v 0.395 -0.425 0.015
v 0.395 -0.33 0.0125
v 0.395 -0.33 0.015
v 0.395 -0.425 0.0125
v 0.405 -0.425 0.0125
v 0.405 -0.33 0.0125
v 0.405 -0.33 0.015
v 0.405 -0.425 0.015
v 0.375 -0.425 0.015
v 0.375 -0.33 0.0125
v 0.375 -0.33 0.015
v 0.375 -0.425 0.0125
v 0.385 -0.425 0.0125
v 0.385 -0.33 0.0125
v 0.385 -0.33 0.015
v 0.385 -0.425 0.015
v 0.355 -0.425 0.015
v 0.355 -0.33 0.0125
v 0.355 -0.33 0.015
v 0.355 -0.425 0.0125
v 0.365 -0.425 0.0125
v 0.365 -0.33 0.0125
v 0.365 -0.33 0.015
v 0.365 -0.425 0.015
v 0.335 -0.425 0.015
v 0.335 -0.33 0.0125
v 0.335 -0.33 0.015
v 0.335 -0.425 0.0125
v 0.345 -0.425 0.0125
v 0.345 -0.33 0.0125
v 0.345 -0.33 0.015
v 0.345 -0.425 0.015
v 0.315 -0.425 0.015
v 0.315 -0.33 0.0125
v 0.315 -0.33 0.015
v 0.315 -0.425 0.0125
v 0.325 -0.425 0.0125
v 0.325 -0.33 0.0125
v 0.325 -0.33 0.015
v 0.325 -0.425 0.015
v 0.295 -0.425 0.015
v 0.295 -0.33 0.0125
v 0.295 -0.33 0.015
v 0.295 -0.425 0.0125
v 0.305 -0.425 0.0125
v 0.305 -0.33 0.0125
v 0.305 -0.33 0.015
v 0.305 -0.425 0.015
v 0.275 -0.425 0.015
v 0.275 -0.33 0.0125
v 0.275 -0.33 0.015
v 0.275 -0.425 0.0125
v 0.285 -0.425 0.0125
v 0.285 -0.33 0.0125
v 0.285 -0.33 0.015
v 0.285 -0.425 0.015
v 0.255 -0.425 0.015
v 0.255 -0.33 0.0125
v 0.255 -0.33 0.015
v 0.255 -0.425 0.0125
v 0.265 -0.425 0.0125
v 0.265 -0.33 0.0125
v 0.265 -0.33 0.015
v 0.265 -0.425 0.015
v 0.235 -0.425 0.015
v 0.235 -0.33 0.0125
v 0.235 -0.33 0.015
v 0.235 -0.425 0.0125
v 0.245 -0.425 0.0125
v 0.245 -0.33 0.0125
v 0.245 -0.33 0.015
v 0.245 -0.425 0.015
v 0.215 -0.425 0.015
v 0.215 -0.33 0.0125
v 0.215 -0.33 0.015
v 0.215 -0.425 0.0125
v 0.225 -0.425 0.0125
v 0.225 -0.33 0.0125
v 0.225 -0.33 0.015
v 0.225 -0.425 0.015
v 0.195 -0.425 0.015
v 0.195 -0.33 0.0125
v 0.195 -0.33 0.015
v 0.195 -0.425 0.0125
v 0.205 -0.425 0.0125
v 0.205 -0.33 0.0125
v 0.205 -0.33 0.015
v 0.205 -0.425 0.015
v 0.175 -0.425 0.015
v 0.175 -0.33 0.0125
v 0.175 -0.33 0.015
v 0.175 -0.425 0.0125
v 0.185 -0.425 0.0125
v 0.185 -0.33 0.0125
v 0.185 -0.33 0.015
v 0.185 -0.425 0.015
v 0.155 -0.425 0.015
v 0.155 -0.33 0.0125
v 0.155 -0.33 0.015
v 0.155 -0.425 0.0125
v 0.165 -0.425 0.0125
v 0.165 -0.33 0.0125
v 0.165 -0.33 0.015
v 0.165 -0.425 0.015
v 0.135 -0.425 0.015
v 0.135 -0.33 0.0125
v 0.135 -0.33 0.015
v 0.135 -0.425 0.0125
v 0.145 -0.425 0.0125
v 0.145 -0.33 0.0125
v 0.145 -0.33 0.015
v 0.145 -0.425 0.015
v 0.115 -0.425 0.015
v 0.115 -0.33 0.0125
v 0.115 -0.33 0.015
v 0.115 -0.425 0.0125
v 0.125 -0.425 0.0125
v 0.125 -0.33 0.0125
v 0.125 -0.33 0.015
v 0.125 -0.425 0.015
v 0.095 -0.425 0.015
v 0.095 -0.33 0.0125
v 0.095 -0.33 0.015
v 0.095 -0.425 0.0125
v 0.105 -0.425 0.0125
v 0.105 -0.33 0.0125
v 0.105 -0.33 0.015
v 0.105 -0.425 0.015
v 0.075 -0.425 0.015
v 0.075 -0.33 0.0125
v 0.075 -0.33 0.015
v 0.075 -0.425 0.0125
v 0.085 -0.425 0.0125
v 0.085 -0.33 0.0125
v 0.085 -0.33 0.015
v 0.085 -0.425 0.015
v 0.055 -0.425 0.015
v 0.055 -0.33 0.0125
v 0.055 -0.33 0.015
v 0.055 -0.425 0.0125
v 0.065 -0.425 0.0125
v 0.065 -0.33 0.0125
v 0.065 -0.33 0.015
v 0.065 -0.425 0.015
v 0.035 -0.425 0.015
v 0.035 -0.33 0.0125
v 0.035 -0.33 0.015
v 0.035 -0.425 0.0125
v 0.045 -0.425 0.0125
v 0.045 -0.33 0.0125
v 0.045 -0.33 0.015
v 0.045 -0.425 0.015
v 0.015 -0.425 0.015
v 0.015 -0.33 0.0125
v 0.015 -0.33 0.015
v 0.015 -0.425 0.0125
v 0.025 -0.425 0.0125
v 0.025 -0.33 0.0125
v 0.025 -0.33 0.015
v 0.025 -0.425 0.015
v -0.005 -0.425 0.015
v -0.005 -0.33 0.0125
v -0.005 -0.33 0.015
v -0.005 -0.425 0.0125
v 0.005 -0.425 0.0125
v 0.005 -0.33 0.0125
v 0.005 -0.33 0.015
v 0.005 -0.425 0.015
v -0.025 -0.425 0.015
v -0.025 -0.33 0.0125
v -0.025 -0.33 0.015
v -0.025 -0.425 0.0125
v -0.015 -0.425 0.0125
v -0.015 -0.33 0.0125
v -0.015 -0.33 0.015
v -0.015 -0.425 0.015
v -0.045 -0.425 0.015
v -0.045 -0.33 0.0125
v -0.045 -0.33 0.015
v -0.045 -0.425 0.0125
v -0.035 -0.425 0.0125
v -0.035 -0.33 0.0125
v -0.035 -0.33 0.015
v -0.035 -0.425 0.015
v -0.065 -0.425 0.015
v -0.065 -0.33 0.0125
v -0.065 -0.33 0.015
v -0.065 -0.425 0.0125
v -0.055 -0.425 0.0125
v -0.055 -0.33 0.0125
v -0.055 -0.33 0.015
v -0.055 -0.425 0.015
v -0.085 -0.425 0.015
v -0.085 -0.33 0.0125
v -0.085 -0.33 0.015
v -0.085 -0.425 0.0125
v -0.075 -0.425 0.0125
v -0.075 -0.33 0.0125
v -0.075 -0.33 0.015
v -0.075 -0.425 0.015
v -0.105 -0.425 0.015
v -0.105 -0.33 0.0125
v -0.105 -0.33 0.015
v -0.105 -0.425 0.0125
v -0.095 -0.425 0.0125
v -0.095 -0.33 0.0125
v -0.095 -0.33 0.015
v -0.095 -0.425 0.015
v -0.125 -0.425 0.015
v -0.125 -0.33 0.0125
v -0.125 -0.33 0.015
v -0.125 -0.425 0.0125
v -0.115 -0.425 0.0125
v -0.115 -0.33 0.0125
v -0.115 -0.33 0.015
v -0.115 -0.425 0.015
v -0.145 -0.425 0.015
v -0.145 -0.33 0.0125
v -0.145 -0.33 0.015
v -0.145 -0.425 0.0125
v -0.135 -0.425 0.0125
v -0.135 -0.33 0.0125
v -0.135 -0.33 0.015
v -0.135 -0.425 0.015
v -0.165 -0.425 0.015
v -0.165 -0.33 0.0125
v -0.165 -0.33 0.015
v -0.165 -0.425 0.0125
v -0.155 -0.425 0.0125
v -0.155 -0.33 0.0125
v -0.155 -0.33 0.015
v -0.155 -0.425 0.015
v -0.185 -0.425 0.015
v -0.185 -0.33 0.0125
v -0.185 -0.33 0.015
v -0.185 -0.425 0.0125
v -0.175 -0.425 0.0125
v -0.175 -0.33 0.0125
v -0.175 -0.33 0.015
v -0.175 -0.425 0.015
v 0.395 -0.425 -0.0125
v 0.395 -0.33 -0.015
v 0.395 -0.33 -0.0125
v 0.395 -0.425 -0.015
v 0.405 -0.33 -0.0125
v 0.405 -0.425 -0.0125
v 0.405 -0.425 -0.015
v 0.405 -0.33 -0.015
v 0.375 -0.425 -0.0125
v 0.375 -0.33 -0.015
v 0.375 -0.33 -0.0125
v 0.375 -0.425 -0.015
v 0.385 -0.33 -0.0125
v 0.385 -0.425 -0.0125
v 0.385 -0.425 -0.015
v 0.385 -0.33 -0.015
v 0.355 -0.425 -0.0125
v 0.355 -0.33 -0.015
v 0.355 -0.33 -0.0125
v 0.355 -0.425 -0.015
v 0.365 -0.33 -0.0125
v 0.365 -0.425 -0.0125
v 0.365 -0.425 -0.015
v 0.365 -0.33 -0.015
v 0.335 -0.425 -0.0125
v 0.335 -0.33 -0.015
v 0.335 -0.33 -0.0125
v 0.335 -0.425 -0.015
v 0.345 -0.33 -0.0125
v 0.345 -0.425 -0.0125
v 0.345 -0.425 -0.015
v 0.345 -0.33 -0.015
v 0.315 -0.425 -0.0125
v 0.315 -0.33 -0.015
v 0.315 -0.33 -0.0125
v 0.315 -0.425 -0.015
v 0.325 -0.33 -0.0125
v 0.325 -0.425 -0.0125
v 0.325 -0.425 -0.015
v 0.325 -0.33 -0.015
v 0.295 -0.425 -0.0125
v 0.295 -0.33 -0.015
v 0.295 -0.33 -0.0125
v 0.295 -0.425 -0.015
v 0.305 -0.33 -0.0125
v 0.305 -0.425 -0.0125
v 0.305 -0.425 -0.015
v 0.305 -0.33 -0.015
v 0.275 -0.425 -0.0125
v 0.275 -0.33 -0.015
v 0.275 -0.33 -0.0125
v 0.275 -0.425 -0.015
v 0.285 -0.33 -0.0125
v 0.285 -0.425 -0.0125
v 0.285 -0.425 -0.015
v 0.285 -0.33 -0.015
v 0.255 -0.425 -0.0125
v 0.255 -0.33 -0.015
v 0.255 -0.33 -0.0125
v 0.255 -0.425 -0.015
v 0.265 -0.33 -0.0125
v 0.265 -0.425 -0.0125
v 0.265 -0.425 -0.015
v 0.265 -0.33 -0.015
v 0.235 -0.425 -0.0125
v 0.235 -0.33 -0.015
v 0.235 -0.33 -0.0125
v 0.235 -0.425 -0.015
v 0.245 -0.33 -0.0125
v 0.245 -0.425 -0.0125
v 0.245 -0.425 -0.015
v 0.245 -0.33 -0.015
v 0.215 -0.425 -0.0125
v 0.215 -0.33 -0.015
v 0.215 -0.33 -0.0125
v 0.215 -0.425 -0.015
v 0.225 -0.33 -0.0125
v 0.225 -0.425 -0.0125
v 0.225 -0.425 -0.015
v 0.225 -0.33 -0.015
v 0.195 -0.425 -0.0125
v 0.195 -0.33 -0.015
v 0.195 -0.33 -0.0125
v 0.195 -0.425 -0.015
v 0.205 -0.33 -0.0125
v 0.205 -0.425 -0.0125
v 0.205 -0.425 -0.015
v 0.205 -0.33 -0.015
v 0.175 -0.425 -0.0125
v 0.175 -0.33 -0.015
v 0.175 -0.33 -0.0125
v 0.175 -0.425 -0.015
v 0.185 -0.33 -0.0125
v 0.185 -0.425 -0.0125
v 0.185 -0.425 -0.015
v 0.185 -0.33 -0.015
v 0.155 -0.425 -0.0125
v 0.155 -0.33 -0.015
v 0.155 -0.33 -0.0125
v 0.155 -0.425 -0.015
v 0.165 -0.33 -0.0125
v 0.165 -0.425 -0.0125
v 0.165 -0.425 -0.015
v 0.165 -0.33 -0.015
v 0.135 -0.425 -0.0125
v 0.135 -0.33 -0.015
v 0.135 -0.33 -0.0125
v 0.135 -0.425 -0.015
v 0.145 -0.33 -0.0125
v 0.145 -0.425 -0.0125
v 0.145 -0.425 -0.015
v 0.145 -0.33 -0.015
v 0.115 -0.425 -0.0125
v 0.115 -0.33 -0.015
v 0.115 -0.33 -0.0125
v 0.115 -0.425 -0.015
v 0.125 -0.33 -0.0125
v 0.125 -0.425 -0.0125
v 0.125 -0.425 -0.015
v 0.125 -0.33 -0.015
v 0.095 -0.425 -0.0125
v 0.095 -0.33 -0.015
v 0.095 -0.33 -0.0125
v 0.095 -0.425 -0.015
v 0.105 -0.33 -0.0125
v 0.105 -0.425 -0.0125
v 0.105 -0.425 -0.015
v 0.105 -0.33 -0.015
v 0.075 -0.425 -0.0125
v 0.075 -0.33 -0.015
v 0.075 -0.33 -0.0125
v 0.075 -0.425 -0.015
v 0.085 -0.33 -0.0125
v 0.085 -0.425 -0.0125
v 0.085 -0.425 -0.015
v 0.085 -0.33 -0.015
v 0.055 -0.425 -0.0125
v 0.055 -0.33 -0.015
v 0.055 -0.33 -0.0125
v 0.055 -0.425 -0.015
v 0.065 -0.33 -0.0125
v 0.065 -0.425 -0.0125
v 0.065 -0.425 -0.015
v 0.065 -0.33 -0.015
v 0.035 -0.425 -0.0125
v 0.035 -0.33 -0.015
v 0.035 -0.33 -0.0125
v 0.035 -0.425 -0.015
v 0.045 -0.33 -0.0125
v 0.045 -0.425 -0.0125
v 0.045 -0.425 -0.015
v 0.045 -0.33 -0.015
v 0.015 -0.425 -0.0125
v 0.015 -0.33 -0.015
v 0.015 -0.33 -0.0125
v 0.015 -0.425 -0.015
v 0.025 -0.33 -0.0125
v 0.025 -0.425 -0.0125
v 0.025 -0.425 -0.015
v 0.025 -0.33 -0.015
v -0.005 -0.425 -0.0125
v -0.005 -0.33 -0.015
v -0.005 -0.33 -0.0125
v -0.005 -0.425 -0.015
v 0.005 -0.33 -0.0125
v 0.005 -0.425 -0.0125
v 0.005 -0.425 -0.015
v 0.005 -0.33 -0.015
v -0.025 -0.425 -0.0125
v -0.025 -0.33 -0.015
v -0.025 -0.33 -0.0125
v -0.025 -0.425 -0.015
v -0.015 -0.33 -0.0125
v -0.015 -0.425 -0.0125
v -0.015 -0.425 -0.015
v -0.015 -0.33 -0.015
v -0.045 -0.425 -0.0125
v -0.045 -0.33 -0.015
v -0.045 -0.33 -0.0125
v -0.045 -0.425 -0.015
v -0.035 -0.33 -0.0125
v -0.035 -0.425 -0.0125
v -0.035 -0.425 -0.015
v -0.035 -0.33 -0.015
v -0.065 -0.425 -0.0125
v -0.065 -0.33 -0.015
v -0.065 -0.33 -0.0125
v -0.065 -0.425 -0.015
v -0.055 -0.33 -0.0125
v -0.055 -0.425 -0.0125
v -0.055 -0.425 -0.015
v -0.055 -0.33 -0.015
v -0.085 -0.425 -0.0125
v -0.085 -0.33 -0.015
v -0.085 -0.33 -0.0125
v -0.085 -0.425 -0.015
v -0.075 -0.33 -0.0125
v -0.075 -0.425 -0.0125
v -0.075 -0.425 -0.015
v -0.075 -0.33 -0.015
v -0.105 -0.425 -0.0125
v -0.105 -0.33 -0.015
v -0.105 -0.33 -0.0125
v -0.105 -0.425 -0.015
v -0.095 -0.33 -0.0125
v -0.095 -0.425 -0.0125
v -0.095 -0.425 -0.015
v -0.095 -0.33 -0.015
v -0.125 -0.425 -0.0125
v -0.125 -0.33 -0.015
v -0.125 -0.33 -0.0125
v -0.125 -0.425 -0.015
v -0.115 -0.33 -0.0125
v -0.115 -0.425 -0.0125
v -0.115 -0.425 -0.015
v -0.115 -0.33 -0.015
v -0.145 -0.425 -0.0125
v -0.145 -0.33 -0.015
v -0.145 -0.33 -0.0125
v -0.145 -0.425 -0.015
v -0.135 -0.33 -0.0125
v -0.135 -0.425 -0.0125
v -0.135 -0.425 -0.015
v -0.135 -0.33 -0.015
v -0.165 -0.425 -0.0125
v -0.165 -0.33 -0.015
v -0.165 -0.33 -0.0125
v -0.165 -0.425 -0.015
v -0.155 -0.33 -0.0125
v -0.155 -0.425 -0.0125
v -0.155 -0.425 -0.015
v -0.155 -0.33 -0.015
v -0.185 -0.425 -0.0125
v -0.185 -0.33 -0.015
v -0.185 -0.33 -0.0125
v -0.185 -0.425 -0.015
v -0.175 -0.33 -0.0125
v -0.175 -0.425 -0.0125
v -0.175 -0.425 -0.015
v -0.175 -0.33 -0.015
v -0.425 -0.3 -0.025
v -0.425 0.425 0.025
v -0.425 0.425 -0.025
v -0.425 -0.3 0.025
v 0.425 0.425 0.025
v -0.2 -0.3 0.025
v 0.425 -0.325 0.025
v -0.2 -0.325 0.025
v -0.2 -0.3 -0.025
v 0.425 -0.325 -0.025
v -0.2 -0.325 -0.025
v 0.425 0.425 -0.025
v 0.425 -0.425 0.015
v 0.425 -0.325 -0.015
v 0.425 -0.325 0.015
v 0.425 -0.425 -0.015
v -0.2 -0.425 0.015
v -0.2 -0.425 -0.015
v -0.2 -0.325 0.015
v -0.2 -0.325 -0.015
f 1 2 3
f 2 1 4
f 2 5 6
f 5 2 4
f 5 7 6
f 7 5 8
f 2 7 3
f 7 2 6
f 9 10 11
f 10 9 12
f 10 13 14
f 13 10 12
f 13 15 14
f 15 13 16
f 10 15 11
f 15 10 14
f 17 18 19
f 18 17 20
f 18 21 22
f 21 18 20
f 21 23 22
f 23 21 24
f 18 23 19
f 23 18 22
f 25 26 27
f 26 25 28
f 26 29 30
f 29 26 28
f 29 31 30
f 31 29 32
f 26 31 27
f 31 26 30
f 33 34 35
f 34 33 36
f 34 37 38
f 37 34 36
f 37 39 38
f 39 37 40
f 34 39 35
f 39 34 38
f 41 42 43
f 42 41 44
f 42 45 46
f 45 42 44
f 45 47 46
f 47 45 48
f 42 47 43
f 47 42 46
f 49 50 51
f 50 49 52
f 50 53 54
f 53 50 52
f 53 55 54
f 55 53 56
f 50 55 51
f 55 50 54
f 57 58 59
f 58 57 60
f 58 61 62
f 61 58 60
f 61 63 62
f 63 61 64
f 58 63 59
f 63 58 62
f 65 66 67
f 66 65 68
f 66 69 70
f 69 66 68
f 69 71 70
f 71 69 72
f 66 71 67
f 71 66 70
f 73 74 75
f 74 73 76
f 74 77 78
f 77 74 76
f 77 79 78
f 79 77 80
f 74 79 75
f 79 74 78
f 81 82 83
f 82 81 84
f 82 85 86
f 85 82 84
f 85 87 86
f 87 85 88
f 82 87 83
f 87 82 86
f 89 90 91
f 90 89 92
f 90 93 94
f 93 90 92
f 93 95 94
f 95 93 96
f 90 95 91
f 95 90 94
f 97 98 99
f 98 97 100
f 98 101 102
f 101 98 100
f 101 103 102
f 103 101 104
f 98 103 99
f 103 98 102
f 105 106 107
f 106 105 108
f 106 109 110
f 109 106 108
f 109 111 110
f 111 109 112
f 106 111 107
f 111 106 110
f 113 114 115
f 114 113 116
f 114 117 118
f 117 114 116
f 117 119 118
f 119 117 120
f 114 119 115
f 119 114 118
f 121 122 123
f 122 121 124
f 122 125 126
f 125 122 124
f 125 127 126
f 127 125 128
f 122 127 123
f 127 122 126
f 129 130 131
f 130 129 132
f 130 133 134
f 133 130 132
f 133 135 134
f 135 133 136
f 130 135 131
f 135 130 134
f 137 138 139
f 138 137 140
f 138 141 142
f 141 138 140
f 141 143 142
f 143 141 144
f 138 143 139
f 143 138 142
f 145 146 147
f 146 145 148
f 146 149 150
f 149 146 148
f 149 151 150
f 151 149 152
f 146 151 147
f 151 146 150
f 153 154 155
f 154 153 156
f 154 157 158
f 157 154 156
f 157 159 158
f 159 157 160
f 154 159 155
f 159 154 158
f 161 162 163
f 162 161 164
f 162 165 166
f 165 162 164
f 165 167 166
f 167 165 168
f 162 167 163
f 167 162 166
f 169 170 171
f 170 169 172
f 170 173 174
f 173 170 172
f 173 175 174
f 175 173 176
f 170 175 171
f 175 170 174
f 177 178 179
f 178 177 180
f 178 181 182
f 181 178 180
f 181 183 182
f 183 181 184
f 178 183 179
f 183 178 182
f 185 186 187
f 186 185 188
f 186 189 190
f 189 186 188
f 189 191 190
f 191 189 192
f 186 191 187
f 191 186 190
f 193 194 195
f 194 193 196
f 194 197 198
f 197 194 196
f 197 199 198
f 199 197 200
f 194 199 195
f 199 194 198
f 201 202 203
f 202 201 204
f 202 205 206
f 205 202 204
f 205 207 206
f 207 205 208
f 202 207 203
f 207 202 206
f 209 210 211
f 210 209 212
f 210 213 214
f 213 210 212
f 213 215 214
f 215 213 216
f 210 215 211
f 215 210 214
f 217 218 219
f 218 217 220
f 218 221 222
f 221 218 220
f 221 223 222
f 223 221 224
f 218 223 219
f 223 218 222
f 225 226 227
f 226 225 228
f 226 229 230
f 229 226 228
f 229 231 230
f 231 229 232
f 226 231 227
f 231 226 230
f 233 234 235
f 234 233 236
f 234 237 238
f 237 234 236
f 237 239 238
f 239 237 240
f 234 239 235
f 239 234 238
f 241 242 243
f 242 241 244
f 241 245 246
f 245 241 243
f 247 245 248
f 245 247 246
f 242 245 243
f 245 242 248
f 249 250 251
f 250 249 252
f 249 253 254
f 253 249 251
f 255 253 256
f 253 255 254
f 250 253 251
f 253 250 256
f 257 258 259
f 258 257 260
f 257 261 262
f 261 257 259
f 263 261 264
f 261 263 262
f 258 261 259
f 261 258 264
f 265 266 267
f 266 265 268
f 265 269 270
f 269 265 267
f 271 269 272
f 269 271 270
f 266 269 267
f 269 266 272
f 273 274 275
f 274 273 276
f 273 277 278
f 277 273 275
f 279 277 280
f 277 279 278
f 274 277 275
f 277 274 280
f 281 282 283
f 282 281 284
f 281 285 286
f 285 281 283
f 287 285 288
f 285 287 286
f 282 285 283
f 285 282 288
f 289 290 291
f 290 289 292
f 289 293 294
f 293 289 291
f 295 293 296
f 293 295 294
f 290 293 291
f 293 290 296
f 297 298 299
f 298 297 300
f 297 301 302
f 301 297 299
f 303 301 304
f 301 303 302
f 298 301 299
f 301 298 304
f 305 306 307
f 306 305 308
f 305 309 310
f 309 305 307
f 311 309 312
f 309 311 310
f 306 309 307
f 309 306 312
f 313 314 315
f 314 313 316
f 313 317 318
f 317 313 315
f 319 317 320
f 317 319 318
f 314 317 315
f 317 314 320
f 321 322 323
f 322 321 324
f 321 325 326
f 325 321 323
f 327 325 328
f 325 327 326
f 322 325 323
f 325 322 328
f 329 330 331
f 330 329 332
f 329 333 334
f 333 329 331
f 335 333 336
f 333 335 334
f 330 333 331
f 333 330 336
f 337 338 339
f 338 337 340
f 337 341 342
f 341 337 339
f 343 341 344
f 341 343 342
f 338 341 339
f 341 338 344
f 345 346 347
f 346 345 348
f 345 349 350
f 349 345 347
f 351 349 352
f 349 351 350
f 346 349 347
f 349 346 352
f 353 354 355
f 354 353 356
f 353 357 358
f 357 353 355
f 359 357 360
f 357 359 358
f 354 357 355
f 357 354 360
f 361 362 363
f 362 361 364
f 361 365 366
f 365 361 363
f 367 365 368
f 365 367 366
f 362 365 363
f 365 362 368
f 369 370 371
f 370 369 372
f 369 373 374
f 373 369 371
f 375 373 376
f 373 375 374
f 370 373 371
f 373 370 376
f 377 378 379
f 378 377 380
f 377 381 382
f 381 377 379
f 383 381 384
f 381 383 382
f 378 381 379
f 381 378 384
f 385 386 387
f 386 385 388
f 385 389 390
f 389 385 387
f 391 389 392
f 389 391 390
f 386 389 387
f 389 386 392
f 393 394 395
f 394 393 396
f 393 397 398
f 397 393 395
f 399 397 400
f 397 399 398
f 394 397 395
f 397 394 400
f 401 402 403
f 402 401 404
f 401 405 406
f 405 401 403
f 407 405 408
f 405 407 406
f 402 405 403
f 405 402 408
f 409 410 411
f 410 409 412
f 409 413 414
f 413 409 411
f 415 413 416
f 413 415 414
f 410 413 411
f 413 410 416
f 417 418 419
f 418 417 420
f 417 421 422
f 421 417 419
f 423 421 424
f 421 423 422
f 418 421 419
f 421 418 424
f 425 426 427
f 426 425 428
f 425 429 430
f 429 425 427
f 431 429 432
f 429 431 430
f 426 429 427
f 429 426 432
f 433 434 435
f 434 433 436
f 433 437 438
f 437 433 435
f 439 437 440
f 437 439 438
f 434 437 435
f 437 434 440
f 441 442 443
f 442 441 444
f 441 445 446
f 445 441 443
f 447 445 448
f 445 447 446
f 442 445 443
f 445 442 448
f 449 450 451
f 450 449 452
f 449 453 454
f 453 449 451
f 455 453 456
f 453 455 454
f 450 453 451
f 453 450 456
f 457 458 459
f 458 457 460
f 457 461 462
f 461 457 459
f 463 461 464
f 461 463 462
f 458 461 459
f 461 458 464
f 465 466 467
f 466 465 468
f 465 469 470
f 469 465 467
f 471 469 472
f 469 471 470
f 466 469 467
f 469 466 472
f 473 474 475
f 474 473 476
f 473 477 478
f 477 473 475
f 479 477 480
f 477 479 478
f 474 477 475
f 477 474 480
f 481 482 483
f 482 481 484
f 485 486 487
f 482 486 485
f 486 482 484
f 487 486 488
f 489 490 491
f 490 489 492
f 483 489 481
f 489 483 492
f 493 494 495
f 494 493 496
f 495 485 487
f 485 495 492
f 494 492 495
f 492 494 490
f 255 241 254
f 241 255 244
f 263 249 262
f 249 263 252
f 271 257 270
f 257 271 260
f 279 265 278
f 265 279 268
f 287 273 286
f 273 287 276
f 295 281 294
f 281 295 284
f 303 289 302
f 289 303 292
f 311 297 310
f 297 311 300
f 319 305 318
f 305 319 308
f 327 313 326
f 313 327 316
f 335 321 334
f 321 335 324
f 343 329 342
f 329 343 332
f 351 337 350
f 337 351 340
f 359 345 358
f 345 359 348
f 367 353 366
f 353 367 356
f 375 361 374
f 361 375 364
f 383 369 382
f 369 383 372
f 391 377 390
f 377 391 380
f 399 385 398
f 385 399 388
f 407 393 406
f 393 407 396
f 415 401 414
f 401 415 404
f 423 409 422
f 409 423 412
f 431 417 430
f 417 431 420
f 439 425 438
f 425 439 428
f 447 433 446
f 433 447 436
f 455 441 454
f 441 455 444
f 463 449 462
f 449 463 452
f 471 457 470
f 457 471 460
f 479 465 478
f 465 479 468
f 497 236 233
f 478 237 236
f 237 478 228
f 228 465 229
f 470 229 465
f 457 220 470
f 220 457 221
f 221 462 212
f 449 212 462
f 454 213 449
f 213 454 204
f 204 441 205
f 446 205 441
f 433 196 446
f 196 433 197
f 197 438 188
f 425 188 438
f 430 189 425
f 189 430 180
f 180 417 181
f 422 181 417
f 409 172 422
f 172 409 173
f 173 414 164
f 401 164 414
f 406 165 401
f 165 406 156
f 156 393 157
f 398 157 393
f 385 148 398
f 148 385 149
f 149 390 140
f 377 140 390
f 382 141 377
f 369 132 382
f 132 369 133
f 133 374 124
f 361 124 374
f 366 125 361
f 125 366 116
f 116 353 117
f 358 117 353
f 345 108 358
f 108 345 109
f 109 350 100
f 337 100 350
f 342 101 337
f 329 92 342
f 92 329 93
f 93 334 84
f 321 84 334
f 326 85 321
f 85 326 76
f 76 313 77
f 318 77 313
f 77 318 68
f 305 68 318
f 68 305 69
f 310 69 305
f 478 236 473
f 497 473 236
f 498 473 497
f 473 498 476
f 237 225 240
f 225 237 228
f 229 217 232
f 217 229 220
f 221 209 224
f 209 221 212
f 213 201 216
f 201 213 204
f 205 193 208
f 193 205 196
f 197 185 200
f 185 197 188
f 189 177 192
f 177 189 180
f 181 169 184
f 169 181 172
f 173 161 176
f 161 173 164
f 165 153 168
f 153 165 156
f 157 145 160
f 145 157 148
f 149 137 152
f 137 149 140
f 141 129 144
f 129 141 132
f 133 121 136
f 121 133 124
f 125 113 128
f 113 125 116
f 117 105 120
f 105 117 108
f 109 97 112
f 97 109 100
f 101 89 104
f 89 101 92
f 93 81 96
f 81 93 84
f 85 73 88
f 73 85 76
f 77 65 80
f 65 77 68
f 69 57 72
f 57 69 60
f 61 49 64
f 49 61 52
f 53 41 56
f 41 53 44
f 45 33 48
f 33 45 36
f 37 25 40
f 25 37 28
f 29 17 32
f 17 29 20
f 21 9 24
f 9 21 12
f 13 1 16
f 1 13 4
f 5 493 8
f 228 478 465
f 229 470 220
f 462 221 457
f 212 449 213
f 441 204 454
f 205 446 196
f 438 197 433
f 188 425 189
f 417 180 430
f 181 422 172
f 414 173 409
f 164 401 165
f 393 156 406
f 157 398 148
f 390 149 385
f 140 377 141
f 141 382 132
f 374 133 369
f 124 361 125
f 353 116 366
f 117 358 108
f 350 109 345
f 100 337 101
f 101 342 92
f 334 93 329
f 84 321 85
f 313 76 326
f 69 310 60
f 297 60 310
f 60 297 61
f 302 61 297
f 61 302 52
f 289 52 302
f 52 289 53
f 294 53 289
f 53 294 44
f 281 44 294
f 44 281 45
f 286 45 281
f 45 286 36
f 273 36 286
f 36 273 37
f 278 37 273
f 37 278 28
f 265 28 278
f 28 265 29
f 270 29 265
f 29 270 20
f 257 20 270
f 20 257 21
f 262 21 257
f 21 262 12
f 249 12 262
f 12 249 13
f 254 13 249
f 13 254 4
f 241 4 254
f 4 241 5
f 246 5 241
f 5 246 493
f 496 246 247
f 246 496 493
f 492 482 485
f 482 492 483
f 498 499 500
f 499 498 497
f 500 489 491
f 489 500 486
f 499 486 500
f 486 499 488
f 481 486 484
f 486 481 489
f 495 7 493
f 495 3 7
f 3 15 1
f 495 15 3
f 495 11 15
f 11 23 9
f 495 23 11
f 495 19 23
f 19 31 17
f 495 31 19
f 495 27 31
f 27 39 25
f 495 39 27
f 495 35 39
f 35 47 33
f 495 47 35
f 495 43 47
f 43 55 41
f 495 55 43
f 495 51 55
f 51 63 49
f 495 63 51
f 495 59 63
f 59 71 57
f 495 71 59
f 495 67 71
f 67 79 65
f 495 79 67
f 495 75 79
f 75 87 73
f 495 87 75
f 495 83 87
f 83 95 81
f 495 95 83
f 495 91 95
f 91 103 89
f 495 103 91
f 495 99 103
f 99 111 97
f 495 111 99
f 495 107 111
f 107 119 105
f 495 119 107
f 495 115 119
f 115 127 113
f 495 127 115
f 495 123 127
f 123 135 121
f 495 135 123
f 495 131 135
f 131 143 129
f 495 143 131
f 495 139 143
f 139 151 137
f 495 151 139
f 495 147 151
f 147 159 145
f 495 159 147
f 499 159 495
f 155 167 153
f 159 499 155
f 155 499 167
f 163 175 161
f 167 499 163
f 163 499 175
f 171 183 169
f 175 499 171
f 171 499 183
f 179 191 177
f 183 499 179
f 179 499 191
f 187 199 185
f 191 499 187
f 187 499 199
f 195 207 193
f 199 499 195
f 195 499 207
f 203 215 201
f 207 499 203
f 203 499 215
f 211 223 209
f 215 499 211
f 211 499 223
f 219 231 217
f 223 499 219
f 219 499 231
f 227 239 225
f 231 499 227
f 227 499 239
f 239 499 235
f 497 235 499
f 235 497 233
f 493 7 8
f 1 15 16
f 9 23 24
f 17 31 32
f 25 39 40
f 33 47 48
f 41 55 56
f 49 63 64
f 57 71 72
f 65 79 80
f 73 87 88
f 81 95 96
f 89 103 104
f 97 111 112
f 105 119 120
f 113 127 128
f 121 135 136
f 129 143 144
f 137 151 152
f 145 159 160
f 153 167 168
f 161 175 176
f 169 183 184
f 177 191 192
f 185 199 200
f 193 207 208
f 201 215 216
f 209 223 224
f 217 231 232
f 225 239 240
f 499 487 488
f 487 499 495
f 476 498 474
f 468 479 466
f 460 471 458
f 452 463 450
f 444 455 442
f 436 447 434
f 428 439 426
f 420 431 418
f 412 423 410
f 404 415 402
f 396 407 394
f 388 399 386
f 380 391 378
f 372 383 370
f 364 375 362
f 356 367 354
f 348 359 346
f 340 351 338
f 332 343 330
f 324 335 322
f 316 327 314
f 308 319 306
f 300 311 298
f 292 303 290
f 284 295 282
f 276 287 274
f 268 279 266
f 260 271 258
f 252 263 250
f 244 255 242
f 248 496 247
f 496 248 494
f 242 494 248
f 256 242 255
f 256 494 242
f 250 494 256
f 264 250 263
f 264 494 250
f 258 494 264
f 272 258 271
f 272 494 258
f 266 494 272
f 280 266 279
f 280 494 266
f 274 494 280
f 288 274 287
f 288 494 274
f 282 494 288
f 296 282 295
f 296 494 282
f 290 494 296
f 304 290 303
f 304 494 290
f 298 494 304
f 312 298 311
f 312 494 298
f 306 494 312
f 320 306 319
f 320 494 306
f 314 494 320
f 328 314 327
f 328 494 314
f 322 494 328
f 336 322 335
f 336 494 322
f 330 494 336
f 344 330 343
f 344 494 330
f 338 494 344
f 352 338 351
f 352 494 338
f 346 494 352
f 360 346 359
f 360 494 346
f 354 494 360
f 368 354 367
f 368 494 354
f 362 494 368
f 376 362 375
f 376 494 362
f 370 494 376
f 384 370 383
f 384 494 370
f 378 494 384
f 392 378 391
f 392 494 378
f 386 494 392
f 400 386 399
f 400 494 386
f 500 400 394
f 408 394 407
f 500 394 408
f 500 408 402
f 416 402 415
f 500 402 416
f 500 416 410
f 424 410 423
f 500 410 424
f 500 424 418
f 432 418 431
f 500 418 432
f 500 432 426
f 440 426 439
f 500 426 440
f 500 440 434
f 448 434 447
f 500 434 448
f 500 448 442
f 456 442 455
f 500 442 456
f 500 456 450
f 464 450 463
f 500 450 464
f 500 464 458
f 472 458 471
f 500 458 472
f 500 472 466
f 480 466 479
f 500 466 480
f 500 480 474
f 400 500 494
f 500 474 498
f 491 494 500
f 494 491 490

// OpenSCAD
// file: lib.scad
function x(v) = v[0];
function y(v) = v[1];
function z(v) = v[2];
function add(v1,v2) = [ for (i = [ 0 : len(v1)-1 ]) v1[i] + v2[i] ];
function xv(d) = [d,0,0];
function yv(d) = [0,d,0];
function zv(d) = [0,0,d];

module box(v) { cube(size=v, center=true); }
module cyl(r1,r2,h) { cylinder(r1=r1, r2=r2, h=h, center=true); }

function grow(n,v) = [x(v)+n*2, y(v)+n*2, z(v)+n*2];

module rbox(v, radius=1) {
	cx = x(v)/2-radius;
	cy = y(v)/2-radius;
	cz = z(v)/2-radius;

	hull() {
		translate([cx,cy,cz]) sphere(r=radius);
		translate([cx,cy,-cz]) sphere(r=radius);
		translate([cx,-cy,cz]) sphere(r=radius);
		translate([cx,-cy,-cz]) sphere(r=radius);
		translate([-cx,cy,cz]) sphere(r=radius);
		translate([-cx,cy,-cz]) sphere(r=radius);
		translate([-cx,-cy,cz]) sphere(r=radius);
		translate([-cx,-cy,-cz]) sphere(r=radius);
	}
}

module fillet(r=1) {
  minkowski() {
    difference() {
      children();
      minkowski() {
        difference() {
          minkowski() {
            children();
            sphere(r=r);
          }
          children();
        }
        sphere(r=r);
      }
    }
    sphere(r=r);
  }
}
// main file
use <lib.scad>

module board() {
	rotate([0,0,180]) difference() {
		box([0.85, 0.85, 0.05]);
		translate([0.35,0.45,0]) box([0.3, 0.3, 0.1]);
		translate([-0.1,0.75,0.04]) box([0.85, 0.85, 0.05]);
		translate([-0.1,0.75,-0.04]) box([0.85, 0.85, 0.05]);
		#for (i = [-20:9])
			translate([i*0.02,0.38,0.0175]) box([0.01, 0.1, 0.01]);
		#for (i = [-20:9])
			translate([i*0.02,0.38,-0.0175]) box([0.01, 0.1, 0.01]);
	}
}

board();
